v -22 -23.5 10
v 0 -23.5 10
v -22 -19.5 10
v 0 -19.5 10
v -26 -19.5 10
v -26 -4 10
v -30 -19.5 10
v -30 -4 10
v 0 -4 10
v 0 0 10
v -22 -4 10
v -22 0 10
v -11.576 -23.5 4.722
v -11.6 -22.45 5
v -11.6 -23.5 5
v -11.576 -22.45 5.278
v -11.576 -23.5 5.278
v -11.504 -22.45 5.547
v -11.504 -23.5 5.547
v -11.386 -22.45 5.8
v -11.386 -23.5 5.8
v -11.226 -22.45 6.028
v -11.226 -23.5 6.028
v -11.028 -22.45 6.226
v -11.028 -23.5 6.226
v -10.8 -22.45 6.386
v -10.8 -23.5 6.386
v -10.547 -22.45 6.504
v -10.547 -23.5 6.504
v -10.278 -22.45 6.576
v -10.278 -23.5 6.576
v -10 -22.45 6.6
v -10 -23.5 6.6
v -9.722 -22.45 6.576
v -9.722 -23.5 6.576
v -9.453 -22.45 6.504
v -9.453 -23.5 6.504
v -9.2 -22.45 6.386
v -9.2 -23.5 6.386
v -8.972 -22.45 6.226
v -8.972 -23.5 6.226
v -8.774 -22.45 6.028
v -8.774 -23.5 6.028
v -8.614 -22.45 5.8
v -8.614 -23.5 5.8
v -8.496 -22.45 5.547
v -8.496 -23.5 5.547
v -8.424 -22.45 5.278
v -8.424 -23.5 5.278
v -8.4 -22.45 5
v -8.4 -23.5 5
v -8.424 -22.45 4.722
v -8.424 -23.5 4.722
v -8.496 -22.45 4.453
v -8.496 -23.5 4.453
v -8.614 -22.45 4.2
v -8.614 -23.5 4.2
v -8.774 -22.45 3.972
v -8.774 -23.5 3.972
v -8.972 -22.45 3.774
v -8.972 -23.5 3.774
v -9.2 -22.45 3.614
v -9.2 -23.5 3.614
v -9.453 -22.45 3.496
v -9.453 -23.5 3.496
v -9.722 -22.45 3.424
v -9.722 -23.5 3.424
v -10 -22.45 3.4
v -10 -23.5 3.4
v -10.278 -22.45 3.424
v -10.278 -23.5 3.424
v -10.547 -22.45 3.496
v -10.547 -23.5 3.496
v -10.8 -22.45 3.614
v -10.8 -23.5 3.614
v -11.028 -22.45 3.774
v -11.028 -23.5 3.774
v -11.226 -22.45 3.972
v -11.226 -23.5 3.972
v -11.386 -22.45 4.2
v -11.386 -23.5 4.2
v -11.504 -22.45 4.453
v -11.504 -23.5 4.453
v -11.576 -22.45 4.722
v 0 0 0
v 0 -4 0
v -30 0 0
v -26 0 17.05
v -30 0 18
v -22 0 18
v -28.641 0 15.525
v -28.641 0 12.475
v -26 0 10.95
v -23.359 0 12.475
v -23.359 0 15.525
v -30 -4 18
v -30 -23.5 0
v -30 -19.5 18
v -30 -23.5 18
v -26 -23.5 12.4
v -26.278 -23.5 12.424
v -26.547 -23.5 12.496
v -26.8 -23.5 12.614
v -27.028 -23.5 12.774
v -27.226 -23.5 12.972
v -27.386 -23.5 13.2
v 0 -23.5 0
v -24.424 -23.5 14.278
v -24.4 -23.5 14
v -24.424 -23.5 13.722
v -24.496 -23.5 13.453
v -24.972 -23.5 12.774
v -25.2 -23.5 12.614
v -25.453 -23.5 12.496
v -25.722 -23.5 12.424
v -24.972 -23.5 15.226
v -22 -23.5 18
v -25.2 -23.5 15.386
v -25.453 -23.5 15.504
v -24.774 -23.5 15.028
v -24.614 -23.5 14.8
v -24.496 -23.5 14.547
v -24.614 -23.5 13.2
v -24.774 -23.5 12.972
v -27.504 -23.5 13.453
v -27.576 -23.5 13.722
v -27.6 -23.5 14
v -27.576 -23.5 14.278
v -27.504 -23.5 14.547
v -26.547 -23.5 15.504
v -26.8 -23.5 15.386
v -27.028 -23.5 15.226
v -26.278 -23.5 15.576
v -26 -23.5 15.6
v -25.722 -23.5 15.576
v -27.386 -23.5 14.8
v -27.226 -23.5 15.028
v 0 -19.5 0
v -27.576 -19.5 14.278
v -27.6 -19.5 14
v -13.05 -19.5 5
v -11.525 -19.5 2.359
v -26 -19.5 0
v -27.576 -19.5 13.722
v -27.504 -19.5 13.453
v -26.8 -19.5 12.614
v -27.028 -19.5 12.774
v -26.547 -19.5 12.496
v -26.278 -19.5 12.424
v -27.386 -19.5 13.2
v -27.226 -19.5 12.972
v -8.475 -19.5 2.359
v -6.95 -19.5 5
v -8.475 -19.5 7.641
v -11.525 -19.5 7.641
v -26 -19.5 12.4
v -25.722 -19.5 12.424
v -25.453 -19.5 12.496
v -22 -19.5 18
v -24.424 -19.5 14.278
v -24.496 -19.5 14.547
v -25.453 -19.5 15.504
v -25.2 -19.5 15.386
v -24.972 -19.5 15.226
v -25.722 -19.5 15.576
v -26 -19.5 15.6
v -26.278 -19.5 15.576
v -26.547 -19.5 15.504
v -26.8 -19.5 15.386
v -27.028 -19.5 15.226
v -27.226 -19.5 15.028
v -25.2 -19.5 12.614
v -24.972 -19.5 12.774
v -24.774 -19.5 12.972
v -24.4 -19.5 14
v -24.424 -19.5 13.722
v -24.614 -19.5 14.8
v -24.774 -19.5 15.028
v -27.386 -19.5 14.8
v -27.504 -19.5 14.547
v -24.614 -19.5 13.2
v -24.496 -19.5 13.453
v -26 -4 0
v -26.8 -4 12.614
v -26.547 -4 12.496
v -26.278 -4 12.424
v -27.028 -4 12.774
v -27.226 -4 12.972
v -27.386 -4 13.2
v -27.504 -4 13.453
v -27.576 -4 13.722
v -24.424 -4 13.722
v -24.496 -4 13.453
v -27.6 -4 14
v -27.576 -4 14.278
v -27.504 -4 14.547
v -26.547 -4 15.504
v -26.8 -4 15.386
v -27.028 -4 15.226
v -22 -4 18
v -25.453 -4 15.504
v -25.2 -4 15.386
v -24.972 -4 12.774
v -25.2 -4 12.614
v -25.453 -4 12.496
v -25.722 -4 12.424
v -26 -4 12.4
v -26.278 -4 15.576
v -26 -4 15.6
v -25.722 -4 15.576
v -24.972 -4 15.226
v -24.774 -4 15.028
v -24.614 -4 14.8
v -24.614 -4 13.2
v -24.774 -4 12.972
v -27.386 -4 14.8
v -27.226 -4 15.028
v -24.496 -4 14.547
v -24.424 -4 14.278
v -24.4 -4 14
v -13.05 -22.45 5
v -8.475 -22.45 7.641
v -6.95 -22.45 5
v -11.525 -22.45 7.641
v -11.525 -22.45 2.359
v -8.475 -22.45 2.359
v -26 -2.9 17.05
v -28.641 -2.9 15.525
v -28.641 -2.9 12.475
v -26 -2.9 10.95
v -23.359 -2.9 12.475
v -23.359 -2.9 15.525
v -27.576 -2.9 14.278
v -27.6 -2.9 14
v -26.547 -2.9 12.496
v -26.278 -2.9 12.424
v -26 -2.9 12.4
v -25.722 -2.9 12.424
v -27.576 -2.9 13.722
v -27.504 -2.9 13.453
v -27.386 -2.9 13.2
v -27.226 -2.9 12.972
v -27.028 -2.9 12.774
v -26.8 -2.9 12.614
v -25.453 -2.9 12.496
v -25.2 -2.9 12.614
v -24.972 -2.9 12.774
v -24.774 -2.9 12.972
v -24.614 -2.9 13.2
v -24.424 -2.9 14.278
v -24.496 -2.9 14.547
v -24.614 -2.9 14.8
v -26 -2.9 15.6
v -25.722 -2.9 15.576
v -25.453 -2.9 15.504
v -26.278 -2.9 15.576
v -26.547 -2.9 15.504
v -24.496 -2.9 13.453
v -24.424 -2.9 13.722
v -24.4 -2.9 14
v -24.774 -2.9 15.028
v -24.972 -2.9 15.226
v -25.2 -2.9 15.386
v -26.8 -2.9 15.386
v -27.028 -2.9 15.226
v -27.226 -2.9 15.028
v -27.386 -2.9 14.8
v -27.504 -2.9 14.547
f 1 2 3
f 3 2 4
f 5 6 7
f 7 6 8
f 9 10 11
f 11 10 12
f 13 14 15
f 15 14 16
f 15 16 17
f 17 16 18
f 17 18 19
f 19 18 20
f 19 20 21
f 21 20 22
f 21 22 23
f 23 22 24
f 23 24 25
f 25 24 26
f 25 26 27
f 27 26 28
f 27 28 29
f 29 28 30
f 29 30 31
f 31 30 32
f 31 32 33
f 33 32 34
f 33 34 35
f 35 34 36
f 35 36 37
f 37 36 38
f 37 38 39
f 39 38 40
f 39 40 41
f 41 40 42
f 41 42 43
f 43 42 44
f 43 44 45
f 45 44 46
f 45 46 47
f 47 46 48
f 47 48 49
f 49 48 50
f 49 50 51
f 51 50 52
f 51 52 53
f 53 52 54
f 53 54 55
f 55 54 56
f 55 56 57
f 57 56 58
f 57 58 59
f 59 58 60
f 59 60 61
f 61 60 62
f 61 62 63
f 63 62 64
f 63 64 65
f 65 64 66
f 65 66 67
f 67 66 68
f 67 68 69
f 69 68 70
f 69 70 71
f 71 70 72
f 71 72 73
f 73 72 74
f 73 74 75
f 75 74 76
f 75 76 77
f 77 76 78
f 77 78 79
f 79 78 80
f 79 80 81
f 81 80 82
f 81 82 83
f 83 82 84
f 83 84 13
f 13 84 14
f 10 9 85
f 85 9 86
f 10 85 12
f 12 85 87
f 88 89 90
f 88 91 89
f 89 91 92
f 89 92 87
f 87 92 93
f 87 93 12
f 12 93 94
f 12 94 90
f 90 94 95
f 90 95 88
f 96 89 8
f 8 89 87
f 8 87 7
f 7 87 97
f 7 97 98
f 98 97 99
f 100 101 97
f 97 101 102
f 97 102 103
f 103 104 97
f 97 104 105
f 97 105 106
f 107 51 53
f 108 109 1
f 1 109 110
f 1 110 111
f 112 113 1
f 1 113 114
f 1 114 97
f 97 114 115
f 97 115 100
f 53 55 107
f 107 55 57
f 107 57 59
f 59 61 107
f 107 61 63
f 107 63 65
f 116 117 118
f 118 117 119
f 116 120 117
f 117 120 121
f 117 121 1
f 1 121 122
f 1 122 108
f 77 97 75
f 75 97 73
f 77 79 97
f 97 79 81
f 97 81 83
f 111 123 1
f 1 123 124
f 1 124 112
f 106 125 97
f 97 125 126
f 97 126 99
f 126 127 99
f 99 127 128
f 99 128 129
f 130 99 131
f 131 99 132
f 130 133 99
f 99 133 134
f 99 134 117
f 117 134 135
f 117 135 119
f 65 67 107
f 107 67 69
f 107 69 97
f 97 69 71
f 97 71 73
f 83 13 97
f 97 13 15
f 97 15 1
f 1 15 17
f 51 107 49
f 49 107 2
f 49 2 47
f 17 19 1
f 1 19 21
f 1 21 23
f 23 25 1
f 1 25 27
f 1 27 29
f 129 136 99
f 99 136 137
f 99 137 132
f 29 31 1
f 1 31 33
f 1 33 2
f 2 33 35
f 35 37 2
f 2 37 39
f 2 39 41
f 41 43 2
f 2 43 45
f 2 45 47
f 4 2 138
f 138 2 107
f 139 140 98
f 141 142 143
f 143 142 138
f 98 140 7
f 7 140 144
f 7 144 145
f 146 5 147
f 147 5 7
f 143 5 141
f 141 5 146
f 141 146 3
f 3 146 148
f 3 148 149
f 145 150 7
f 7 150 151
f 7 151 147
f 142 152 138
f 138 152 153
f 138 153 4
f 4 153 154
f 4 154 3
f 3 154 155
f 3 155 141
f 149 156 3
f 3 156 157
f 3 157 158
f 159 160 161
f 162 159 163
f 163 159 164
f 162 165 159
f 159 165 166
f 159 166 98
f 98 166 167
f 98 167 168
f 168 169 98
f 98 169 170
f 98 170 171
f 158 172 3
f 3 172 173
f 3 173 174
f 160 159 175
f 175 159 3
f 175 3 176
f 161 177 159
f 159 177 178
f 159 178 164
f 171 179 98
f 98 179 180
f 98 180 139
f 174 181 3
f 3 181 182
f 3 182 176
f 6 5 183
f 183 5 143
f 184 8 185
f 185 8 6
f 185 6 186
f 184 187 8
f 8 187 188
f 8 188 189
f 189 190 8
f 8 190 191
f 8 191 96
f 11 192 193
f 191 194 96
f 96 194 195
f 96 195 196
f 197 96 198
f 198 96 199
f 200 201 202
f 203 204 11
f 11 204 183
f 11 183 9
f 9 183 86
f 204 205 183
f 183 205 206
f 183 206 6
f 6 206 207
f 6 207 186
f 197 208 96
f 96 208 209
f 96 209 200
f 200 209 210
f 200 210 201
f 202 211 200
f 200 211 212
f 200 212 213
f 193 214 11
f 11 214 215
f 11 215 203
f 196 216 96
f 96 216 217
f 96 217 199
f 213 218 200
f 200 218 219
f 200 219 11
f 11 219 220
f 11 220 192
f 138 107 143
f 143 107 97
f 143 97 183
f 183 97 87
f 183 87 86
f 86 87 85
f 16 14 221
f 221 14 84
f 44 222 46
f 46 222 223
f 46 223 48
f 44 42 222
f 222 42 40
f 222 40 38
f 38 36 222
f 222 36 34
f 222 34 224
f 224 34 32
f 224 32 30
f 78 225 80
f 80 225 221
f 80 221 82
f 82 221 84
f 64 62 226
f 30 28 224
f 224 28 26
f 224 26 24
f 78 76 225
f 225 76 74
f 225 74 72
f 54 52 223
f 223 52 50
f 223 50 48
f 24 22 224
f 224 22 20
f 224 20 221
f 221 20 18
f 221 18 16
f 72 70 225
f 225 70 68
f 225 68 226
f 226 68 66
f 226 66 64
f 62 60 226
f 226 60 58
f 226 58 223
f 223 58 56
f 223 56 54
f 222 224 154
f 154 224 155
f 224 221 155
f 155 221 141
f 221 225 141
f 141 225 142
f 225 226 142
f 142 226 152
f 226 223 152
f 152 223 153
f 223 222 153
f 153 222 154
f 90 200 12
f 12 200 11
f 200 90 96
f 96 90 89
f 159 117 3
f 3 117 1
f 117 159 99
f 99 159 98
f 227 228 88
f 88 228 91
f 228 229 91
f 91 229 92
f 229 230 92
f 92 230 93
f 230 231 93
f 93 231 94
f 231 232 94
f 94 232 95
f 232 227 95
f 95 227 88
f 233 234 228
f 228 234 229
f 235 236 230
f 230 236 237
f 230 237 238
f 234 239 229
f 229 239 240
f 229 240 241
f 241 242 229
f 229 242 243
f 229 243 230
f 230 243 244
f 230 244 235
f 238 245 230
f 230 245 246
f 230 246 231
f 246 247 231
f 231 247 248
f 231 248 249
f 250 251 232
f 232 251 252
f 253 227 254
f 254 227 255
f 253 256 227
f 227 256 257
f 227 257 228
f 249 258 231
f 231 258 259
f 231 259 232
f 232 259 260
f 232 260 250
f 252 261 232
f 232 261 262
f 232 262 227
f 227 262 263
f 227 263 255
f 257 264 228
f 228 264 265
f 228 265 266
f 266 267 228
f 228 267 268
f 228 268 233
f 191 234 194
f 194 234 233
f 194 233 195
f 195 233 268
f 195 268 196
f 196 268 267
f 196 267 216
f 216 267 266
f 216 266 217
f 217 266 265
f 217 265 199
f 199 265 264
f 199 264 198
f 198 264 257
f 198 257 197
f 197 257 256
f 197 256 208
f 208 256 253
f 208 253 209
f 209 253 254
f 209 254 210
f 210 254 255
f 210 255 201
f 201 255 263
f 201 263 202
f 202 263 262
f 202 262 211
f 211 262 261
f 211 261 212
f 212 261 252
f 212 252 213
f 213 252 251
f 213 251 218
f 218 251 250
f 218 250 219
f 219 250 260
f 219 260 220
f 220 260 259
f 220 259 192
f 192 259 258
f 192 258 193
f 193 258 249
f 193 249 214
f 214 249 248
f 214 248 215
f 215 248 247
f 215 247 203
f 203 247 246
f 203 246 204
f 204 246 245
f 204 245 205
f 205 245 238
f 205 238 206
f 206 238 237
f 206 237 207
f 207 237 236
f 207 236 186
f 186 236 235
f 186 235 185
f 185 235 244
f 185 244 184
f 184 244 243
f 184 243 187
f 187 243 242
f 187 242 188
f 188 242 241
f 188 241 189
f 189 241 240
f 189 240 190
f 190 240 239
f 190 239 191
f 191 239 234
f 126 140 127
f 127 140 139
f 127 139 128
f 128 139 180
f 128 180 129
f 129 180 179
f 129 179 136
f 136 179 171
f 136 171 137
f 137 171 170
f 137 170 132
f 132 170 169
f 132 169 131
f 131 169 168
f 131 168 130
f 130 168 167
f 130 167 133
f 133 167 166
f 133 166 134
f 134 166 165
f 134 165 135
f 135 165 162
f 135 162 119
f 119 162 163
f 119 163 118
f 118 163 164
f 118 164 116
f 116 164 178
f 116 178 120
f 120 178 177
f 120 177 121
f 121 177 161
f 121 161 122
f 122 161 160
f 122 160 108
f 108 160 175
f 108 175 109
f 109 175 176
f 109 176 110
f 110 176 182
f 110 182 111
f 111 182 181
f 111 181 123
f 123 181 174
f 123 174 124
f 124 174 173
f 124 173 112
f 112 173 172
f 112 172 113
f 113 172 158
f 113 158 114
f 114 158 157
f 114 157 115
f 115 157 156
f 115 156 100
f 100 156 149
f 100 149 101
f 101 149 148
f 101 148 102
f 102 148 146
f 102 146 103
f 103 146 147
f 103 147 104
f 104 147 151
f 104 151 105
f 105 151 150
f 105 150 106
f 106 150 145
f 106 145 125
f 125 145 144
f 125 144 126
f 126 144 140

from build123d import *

# Parameters (mm, degrees)
SALIENTE_EXTRUIR1_DEPTH = 10
CORTAR_EXTRUIR2_REACH   = 6
CROQUIS3_R              = 1.6
CORTAR_EXTRUIR3_DEPTH   = 2.95
CROQUIS6_W              = 8
CROQUIS6_H              = 4
SALIENTE_EXTRUIR2_DEPTH = 8
CORTAR_EXTRUIR4_DEPTH   = 2.9
CROQUIS8_R              = 1.6
CORTAR_EXTRUIR5_DEPTH   = 24.5


with BuildPart() as part:
    # Croquis1 → Saliente-Extruir1 (new body)
    with BuildSketch(Plane.XY):
        Polygon((0, 0), (-30, 0), (-30, -23.5), (0, -23.5), (0, -19.5), (-26, -19.5), (-26, -4), (0, -4), align=None)
    extrude(amount=SALIENTE_EXTRUIR1_DEPTH)

    # Croquis3 → Cortar-Extruir2 (cut, up to next)
    with BuildSketch(Plane(origin=(0, -19.5, 0), x_dir=(1, 0, 0), z_dir=(0, 1, 0)), mode=Mode.PRIVATE) as cortar_extruir2_sk1:
        with Locations((-10, -5)):
            Circle(CROQUIS3_R)
    cortar_extruir2_tool1 = extrude(cortar_extruir2_sk1.sketch, amount=-CORTAR_EXTRUIR2_REACH, mode=Mode.PRIVATE) & part.part
    add(cortar_extruir2_tool1.solids().sort_by_distance((-10, -19.5, 5))[0], mode=Mode.SUBTRACT)

    # Croquis5 → Cortar-Extruir3 (cut)
    with BuildSketch(Plane(origin=(0, -19.5, 0), x_dir=(1, 0, 0), z_dir=(0, 1, 0))):
        Polygon((-8.475, -7.641377482), (-6.95, -5), (-8.475, -2.358622518), (-11.525, -2.358622518), (-13.05, -5), (-11.525, -7.641377482), align=None)
    extrude(amount=-CORTAR_EXTRUIR3_DEPTH, mode=Mode.SUBTRACT)

    # Croquis6 → Saliente-Extruir2 (add)
    with BuildSketch(Plane.XY.offset(10)):
        with Locations((-26, -2)):
            Rectangle(CROQUIS6_W, CROQUIS6_H)
        with Locations((-26, -21.5)):
            Rectangle(CROQUIS6_W, CROQUIS6_H)
    extrude(amount=SALIENTE_EXTRUIR2_DEPTH)

    # Croquis7 → Cortar-Extruir4 (cut)
    with BuildSketch(Plane(origin=(0, 0, 0), x_dir=(1, 0, 0), z_dir=(0, 1, 0))):
        Polygon((-26, -17.05), (-23.358622518, -15.525), (-23.358622518, -12.475), (-26, -10.95), (-28.641377482, -12.475), (-28.641377482, -15.525), align=None)
    extrude(amount=-CORTAR_EXTRUIR4_DEPTH, mode=Mode.SUBTRACT)

    # Croquis8 → Cortar-Extruir5 (cut, through all)
    with BuildSketch(Plane(origin=(0, 0, 0), x_dir=(1, 0, 0), z_dir=(0, 1, 0))):
        with Locations((-26, -14)):
            Circle(CROQUIS8_R)
    extrude(amount=-CORTAR_EXTRUIR5_DEPTH, mode=Mode.SUBTRACT)


solid = part.part
